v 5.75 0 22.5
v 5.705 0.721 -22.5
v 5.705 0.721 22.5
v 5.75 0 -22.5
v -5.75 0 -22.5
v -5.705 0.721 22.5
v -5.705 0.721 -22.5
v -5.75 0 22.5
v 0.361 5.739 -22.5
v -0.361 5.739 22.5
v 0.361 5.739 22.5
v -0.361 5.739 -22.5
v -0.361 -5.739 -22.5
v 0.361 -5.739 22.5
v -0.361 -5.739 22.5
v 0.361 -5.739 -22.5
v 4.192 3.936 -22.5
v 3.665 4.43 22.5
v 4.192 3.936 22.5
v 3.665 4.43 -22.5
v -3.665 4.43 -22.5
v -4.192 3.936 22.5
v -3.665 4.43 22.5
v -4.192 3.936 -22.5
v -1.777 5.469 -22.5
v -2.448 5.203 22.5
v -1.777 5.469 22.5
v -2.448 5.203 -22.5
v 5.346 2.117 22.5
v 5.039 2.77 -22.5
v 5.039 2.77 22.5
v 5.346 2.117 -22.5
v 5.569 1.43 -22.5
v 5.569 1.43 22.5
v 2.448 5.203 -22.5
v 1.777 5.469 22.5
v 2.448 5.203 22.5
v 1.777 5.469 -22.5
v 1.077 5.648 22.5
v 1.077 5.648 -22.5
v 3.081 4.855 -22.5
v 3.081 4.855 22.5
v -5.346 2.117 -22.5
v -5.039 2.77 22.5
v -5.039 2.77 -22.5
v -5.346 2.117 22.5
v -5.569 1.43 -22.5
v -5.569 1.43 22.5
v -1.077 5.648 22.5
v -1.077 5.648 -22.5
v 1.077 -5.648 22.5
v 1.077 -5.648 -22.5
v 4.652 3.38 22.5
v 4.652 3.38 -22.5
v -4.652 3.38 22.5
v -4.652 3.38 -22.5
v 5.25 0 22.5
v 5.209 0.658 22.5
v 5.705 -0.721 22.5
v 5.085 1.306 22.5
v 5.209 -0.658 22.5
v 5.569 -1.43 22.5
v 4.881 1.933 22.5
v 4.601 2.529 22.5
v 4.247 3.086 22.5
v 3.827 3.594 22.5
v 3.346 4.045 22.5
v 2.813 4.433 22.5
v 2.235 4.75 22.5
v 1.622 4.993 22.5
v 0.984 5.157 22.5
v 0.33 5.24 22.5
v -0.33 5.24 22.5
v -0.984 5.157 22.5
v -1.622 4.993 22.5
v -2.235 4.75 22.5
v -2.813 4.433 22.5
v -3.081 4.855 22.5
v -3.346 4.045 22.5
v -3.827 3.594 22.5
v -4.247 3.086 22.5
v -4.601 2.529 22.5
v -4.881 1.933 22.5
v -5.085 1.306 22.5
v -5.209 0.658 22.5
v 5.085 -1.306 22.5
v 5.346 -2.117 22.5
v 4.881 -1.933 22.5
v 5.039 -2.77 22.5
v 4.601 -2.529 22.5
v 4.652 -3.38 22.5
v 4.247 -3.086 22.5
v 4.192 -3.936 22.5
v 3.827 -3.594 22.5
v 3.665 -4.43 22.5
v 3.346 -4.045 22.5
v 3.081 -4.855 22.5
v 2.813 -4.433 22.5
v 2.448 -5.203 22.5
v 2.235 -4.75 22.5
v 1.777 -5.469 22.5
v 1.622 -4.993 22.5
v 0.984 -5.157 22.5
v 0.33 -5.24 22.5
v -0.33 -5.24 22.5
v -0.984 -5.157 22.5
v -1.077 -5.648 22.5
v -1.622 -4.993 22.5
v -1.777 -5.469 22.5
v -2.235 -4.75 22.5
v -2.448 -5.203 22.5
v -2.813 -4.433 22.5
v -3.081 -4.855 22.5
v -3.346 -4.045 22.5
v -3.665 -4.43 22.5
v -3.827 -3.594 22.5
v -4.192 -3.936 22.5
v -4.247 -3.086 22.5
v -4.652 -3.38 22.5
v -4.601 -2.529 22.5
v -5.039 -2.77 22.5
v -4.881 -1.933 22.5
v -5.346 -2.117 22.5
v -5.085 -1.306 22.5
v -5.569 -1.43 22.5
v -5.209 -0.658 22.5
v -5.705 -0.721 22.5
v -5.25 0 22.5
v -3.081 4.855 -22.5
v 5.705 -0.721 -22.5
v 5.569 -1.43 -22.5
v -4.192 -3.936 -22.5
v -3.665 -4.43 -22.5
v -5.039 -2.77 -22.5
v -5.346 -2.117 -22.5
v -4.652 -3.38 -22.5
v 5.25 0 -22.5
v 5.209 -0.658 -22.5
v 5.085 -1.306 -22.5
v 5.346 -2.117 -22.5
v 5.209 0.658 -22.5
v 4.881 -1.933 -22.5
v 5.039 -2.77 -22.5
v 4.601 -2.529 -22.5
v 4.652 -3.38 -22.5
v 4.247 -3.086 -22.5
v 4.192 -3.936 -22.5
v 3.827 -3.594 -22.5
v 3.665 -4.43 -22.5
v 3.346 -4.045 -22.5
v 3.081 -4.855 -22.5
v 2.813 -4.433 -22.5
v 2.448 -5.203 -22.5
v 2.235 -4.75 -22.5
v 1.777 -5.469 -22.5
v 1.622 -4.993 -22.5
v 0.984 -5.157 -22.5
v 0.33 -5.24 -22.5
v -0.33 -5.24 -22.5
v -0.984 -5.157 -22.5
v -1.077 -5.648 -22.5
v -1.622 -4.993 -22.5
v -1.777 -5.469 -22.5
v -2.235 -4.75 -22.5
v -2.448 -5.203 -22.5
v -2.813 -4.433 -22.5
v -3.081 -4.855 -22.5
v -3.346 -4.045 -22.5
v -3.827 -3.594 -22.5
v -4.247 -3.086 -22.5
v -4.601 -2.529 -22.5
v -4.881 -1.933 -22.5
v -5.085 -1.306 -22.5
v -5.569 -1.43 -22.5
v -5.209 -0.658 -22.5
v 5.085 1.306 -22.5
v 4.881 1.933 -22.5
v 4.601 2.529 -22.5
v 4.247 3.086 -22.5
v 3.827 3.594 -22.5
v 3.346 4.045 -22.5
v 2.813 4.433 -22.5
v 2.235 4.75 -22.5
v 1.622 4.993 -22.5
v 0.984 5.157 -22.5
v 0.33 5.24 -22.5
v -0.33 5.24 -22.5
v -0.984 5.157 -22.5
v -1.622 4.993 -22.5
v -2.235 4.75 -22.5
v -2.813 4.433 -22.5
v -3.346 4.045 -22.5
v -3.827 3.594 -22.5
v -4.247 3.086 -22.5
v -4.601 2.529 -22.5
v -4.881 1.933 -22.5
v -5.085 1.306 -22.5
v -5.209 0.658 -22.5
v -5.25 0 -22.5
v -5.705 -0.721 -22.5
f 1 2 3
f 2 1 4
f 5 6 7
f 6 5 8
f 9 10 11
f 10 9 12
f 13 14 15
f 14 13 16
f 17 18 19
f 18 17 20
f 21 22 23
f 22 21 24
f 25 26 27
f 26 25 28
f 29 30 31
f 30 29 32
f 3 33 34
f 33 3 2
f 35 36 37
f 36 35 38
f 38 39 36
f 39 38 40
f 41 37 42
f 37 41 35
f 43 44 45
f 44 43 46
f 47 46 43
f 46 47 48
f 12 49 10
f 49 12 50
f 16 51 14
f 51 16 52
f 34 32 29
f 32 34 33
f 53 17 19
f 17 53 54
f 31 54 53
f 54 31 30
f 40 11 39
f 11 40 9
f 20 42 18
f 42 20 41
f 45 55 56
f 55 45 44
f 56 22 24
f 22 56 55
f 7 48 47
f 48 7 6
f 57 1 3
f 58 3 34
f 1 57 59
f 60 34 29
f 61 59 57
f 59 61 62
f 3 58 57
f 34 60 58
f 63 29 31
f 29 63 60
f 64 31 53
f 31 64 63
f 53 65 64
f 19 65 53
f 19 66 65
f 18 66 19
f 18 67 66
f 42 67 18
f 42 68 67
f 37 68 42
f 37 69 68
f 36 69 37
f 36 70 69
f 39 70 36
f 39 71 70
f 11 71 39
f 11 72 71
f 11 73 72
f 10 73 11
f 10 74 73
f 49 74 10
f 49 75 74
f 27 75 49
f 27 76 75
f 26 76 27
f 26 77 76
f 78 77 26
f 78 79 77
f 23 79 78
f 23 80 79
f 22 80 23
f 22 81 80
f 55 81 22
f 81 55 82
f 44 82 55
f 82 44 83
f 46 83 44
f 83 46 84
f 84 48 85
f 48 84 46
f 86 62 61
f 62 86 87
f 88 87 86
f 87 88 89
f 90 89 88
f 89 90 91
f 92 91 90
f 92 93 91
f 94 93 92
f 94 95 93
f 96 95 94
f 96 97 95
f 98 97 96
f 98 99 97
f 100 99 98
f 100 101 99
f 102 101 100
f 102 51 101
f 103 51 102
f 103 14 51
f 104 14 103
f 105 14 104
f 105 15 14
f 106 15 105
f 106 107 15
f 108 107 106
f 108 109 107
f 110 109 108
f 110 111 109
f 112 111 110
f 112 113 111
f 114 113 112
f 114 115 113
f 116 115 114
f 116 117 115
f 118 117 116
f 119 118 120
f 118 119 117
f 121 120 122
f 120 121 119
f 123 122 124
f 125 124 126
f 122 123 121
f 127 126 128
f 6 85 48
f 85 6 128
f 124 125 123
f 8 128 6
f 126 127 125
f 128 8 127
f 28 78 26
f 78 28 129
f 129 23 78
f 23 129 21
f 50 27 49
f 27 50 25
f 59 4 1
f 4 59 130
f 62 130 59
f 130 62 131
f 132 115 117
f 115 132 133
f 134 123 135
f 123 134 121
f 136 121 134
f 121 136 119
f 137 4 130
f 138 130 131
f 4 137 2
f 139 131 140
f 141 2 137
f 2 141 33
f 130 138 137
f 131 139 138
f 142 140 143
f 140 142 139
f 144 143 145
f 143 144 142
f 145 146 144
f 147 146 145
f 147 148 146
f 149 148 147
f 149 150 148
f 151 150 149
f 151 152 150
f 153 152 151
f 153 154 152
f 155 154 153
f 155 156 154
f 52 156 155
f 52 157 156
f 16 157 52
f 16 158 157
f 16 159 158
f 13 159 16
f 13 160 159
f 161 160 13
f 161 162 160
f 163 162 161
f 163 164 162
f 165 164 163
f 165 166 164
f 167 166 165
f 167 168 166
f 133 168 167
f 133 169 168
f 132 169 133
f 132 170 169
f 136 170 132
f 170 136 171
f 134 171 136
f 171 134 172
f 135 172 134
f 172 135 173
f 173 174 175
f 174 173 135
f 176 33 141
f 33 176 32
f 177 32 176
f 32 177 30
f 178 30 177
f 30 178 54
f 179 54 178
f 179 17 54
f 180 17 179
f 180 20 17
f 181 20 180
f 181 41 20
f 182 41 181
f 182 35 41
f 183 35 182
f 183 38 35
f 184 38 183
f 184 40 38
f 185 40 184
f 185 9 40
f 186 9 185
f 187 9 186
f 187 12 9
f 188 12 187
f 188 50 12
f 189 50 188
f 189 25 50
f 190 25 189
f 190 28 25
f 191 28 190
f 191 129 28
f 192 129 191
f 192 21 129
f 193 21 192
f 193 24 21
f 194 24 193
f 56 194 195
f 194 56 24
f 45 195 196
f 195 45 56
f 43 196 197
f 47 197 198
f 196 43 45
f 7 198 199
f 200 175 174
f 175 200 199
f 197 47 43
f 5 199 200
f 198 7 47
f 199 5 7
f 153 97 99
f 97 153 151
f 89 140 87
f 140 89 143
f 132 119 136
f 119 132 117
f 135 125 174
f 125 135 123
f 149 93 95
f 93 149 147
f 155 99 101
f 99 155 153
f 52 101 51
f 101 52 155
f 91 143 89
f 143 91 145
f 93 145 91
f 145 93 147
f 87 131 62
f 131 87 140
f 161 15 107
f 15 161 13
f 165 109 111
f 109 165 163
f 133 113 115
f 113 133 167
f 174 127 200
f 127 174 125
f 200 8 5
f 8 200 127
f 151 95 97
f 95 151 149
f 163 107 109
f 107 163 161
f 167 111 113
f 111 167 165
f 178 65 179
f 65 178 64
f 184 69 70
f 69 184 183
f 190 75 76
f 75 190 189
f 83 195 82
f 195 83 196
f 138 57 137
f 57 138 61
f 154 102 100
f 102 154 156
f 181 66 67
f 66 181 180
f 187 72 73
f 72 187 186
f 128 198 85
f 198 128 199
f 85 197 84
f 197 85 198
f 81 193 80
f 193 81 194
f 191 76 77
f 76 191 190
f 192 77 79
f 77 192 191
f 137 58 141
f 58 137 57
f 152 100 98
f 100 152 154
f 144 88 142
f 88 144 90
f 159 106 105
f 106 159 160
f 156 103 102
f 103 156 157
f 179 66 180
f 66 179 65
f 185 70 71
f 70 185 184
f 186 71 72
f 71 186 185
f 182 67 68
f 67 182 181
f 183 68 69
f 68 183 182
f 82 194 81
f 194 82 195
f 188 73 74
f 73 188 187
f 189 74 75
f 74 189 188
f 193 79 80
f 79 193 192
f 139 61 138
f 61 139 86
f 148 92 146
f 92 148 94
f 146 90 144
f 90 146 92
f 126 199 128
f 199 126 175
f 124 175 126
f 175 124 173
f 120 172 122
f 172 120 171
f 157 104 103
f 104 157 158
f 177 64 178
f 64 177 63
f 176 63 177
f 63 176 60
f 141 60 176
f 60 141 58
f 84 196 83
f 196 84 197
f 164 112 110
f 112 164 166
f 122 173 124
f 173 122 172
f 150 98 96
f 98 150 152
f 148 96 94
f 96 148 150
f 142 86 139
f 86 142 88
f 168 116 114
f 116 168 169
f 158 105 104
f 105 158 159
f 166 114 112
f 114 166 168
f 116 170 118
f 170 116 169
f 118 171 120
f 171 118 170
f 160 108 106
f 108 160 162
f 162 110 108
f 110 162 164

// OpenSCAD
$fn = 50;


difference() {
	union() {
		translate(v = [0, 0, -22.5000000000]) {
			cylinder(h = 45, r = 5.7500000000);
		}
	}
	union() {
		translate(v = [0, 0, -100.0000000000]) {
			cylinder(h = 200, r = 5.2500000000);
		}
	}
}
